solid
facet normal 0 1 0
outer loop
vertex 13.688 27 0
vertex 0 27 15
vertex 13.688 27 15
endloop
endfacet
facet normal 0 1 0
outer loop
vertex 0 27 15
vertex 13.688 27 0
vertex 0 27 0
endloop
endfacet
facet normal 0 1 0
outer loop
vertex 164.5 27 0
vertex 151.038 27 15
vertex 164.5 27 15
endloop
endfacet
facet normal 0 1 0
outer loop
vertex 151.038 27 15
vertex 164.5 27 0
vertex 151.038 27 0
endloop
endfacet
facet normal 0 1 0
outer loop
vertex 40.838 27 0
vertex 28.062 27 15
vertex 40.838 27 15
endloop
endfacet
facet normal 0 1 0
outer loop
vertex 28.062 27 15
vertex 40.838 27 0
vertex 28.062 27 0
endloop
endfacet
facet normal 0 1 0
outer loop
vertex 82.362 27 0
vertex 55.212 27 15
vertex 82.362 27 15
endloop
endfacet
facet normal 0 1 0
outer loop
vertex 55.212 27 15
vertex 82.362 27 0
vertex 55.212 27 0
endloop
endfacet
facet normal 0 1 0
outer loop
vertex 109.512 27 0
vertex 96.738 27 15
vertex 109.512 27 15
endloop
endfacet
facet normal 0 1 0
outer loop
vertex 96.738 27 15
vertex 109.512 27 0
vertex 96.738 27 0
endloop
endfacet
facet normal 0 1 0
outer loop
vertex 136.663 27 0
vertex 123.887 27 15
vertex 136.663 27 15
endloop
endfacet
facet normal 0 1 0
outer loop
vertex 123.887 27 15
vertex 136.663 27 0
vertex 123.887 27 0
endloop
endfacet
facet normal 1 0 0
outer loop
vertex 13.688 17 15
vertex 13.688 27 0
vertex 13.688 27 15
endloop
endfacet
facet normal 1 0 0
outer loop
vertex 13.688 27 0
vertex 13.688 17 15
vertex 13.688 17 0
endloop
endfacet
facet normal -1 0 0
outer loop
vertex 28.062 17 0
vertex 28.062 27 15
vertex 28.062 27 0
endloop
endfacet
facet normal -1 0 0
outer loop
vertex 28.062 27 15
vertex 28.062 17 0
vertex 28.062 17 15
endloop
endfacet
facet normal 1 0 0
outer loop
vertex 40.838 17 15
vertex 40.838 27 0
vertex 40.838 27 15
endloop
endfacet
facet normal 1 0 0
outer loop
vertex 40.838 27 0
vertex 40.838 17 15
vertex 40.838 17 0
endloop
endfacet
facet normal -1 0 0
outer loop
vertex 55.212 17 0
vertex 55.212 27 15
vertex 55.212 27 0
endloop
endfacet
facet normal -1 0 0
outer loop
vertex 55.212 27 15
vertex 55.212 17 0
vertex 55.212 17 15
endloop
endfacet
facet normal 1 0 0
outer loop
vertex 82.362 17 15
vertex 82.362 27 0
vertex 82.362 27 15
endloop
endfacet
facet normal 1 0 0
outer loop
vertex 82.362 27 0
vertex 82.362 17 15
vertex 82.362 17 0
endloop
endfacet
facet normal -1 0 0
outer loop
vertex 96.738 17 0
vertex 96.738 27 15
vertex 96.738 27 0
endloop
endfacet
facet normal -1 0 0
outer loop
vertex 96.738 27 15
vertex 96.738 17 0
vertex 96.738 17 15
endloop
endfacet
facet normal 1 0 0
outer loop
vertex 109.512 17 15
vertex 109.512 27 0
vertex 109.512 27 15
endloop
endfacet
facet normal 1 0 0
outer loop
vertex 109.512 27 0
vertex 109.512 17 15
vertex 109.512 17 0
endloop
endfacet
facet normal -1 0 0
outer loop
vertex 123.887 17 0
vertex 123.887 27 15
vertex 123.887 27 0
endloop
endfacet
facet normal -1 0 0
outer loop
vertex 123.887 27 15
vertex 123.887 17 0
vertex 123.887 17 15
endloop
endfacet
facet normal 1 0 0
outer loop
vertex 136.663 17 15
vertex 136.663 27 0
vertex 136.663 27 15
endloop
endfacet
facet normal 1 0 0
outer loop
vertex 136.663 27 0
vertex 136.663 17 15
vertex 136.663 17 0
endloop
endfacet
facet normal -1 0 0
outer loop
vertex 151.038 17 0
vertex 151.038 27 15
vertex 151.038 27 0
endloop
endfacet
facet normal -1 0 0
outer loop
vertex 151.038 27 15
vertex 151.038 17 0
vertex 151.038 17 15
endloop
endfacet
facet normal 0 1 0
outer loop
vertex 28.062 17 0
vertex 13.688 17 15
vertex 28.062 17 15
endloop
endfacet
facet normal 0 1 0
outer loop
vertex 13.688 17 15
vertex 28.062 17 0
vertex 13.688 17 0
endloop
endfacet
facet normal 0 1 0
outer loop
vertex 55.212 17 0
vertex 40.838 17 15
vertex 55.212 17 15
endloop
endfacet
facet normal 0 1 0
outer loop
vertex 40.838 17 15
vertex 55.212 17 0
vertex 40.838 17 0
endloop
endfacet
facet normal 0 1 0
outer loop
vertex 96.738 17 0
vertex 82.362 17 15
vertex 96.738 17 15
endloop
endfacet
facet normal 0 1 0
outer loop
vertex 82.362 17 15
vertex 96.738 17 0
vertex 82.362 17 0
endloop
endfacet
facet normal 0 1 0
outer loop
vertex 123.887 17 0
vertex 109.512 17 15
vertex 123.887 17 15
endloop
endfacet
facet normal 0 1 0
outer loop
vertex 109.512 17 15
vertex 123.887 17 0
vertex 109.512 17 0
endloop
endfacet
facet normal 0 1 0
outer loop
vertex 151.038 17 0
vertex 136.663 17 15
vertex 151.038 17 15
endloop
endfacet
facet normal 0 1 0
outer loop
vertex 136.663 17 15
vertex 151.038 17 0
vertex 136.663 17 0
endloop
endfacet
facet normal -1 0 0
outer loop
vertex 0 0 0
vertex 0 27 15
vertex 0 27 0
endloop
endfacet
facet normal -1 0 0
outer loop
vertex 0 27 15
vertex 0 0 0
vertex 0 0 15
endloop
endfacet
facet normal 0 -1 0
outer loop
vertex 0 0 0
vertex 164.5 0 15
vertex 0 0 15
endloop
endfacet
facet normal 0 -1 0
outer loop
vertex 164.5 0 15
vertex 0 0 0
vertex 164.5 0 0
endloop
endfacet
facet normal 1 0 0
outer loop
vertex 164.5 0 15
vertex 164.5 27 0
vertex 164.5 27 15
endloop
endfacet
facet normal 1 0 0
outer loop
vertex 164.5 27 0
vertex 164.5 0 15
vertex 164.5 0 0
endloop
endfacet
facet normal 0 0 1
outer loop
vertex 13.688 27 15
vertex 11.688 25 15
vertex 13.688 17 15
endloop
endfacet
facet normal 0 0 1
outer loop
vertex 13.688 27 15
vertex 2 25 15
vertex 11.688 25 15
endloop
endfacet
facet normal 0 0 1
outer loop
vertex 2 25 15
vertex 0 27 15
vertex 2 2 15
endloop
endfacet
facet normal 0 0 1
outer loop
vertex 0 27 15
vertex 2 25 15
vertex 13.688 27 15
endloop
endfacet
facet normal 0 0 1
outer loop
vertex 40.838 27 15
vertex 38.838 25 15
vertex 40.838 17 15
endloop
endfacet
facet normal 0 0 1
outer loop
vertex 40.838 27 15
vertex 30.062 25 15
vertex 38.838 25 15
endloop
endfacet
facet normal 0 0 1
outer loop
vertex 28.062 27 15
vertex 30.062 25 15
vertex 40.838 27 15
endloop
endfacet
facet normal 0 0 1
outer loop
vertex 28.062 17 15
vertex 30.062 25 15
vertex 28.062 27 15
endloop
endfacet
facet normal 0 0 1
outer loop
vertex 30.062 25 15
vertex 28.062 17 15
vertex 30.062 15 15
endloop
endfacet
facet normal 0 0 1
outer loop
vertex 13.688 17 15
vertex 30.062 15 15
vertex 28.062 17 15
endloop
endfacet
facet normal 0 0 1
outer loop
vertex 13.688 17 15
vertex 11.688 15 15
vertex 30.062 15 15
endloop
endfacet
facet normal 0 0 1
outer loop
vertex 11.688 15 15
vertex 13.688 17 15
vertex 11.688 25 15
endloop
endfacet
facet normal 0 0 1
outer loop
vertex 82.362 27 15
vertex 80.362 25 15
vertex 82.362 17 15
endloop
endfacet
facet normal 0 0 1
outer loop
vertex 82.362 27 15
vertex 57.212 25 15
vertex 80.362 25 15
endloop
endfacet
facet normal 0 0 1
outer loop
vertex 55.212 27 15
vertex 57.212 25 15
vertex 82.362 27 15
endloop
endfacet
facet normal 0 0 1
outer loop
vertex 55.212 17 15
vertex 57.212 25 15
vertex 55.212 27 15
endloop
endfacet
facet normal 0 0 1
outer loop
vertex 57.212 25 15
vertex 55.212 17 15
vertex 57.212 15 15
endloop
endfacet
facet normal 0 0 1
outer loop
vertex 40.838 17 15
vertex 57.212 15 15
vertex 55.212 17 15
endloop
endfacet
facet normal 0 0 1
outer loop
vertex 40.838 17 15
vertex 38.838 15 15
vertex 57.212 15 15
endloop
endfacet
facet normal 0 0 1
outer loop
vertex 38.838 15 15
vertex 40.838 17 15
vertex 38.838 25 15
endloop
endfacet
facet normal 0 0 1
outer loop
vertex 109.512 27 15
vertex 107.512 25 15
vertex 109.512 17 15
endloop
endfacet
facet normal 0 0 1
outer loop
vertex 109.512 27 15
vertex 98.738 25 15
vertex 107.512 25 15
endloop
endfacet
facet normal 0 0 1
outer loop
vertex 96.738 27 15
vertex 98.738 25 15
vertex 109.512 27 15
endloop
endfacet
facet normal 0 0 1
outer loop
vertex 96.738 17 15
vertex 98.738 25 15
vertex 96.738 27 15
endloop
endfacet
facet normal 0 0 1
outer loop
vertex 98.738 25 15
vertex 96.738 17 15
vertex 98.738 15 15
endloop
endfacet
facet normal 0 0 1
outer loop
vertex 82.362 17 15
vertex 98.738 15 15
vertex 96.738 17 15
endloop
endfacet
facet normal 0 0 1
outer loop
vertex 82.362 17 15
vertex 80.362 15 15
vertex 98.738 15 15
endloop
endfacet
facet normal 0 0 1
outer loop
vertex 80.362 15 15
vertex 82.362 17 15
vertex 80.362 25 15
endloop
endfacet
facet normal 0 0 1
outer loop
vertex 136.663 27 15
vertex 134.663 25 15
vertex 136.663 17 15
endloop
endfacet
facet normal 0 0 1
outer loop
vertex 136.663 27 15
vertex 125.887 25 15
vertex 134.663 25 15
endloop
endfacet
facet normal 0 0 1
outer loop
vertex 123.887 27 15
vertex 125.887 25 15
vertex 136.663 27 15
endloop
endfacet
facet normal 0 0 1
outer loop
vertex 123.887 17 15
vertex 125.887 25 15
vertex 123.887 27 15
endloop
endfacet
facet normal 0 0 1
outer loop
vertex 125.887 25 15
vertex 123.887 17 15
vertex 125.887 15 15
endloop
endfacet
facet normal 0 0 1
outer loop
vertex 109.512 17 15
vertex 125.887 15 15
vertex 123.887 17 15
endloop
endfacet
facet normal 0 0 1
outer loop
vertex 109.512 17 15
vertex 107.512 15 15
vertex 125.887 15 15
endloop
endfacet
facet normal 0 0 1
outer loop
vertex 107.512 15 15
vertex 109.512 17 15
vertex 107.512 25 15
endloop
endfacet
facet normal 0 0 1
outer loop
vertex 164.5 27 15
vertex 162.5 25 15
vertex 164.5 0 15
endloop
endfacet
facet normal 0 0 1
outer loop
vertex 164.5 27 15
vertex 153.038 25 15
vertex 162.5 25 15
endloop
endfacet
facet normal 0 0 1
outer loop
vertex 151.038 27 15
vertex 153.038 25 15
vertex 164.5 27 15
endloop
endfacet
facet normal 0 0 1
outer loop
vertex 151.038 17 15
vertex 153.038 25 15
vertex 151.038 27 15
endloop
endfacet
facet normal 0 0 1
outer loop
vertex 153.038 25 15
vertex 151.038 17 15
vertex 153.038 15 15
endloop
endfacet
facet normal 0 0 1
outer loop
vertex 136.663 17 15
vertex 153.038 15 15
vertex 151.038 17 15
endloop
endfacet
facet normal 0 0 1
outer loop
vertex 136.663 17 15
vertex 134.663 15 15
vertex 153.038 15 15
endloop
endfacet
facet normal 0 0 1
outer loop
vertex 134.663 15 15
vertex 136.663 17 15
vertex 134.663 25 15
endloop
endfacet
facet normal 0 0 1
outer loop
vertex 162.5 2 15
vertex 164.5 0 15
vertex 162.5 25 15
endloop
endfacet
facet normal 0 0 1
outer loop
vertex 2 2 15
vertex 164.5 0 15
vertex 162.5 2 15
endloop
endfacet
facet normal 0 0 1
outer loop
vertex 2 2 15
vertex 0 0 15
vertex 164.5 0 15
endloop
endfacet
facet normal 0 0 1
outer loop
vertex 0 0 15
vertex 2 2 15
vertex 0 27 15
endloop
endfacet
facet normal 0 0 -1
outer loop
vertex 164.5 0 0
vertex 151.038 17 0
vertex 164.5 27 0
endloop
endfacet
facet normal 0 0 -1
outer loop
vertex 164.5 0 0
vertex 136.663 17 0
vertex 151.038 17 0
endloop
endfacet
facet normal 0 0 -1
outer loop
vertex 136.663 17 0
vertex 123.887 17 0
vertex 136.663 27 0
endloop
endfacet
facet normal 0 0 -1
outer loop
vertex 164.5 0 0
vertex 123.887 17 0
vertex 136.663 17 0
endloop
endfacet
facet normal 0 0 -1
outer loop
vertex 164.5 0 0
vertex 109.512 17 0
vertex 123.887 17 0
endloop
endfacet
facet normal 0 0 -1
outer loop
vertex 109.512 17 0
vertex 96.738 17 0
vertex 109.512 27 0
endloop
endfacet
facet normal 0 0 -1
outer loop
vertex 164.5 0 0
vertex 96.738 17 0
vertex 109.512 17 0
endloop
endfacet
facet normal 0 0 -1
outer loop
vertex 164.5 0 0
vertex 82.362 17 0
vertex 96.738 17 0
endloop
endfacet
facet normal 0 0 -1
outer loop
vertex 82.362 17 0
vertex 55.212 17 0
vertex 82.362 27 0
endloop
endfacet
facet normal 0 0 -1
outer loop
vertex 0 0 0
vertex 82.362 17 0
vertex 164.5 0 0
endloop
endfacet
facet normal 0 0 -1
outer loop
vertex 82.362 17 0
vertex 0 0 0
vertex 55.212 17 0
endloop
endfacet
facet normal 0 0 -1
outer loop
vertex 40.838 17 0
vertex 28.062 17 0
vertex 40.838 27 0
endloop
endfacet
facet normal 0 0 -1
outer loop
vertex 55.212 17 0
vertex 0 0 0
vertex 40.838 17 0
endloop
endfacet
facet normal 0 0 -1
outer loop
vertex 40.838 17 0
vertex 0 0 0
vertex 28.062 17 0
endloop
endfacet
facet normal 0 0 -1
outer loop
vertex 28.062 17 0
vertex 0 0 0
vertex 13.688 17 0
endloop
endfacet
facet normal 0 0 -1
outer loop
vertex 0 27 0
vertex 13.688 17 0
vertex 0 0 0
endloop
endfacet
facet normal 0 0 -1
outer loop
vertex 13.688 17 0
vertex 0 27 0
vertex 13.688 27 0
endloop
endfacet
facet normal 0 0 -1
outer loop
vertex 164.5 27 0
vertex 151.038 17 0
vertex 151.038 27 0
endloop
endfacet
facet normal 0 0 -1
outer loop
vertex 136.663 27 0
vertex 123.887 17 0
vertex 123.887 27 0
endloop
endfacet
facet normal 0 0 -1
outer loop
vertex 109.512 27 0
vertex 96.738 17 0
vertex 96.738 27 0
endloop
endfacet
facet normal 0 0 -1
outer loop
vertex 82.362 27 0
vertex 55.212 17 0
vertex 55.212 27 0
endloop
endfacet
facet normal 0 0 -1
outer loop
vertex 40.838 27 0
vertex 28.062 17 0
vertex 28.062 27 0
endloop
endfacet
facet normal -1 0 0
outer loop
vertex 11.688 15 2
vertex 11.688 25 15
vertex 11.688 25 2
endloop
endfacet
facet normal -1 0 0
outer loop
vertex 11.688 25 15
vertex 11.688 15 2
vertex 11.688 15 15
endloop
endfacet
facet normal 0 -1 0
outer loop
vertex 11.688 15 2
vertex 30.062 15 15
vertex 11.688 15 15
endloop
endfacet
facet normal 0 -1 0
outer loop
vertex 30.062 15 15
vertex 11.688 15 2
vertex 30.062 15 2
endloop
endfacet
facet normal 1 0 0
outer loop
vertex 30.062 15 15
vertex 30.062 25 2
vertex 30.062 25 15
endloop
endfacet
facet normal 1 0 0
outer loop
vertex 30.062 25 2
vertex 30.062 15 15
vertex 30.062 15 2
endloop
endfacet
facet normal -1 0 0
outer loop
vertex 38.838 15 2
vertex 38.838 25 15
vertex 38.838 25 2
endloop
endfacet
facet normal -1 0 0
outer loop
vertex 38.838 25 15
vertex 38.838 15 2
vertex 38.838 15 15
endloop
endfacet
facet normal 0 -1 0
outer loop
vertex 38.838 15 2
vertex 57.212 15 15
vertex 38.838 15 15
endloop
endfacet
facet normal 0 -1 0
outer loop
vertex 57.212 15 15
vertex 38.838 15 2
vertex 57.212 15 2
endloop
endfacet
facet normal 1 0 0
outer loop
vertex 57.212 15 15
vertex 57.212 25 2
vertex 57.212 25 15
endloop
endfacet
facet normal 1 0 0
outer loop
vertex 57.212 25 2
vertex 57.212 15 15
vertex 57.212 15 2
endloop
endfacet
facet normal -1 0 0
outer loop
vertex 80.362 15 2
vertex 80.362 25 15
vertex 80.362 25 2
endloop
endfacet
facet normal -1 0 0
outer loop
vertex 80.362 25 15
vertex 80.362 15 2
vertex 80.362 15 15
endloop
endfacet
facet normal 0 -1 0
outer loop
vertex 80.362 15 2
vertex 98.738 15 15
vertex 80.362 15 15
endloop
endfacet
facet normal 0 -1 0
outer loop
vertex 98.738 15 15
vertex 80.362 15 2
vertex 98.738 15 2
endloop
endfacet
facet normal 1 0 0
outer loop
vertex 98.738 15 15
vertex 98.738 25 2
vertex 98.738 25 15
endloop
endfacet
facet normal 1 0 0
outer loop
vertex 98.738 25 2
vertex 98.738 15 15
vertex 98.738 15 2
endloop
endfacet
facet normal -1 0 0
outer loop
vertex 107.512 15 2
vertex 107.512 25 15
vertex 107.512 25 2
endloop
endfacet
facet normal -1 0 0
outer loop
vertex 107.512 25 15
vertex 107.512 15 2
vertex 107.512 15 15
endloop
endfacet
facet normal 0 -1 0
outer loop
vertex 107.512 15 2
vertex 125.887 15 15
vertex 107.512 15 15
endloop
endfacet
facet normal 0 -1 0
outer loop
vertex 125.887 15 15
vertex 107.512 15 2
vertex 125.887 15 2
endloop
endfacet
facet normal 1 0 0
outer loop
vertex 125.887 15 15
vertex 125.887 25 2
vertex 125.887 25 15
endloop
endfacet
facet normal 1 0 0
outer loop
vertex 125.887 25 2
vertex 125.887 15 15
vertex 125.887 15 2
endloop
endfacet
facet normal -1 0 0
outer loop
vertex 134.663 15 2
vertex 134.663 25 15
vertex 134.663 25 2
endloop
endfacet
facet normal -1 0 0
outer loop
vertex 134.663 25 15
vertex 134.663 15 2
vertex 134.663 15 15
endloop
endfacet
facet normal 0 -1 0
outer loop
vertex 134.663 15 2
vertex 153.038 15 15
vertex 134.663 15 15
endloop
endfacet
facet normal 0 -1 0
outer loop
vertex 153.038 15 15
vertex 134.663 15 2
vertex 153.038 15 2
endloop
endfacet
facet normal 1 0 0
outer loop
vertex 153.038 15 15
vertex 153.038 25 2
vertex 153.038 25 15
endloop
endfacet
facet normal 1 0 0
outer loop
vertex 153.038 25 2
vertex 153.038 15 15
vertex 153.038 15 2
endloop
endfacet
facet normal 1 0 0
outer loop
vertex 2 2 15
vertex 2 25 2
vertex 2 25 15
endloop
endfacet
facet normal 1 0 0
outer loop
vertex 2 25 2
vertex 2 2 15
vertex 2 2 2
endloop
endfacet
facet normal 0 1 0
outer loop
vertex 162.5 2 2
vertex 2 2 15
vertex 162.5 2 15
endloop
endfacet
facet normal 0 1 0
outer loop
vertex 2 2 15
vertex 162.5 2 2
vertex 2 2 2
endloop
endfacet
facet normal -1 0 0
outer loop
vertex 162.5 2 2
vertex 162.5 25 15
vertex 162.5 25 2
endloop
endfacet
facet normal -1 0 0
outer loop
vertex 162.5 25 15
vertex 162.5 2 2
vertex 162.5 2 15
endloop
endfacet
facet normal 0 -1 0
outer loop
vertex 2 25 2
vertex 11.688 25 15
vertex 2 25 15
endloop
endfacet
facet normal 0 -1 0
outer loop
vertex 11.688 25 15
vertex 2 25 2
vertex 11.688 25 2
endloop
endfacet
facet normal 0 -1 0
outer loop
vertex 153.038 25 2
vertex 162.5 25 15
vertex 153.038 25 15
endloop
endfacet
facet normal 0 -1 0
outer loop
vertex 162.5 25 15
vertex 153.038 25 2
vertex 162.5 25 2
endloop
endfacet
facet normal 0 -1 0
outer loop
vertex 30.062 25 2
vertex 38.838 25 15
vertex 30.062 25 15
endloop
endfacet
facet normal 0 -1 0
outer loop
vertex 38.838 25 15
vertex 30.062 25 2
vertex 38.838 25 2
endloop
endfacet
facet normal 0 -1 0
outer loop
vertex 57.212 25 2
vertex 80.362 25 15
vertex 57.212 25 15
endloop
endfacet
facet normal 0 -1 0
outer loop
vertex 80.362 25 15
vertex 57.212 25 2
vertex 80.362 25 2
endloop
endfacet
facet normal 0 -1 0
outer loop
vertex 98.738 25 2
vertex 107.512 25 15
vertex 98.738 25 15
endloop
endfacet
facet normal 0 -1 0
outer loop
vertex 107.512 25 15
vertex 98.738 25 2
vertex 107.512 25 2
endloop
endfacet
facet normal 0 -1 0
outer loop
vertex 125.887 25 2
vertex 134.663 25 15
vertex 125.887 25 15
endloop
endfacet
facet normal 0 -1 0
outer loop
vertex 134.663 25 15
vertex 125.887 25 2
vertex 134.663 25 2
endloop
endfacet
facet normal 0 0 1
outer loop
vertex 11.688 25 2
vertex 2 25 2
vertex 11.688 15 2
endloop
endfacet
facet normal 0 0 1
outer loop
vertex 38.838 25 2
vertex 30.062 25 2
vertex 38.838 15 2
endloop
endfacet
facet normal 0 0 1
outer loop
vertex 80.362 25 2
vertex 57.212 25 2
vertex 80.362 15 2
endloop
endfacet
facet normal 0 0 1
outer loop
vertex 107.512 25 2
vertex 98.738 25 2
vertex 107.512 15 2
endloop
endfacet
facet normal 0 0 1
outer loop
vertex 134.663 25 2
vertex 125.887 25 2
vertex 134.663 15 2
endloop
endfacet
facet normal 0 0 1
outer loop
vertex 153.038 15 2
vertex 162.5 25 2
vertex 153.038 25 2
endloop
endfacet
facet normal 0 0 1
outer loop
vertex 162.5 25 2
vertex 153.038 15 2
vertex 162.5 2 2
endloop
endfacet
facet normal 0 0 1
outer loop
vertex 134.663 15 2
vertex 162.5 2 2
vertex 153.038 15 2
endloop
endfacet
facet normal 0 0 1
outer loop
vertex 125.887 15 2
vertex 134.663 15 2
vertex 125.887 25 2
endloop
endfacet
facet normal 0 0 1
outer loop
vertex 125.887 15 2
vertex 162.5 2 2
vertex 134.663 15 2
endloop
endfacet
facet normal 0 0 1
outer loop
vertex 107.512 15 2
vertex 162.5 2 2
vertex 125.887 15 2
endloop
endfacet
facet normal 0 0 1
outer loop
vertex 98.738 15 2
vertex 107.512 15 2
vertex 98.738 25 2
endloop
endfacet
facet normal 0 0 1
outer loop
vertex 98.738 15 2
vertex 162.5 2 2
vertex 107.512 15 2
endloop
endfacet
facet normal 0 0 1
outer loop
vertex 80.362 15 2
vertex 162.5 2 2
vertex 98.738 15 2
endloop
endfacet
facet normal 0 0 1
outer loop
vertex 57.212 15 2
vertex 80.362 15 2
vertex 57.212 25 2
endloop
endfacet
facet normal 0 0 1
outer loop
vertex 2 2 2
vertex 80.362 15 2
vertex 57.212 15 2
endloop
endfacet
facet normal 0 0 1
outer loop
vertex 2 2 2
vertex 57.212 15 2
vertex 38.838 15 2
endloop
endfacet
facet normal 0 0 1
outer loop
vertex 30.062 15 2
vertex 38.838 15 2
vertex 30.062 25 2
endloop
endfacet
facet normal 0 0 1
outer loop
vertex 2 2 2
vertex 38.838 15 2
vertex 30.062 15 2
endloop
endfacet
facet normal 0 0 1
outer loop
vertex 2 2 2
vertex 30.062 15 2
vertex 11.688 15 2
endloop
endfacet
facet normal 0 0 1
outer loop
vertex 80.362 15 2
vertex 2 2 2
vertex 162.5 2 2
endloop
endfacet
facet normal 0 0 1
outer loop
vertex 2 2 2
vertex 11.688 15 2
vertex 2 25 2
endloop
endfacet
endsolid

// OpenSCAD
// file: Piano.scad
/* Piano Keyboard
 *
 * Author: Thiago Rosa (http://www.thiagorosa.com)
 * Project: KeyTita (https://github.com/thiagolr/keytita)
 * License: CC BY-SA 4.0 (https://creativecommons.org/licenses/by-sa/4.0)
 * 
 * Design: http://datagenetics.com/blog/may32016/index.html
 * 525|490|490|490|525|455|490|490|490|490|490|455
 *
 */

$WHITE_LENGTH = 135;
$WHITE_WIDTH = 22;
$WHITE_HEIGHT = 10;
$BLACK_LENGTH = 85;
$BLACK_HEIGHT = 15;
$SPACE_WIDTH = 1;
$THICKNESS = 0;
$OCTAVES = 1;
$INCLUDE_A0_B0 = false;
$INCLUDE_END_C = false;

$INCLUDE_SOLID_SPACE = false;
$KEY_COLOR_ALPHA = 1.0;

//Piano();
//Piano61();
//Piano88();
   
module Piano(whiteLength = $WHITE_LENGTH, whiteWidth = $WHITE_WIDTH, whiteHeight = $WHITE_HEIGHT, blackLength = $BLACK_LENGTH, blackHeight = $BLACK_HEIGHT, spaceWidth = $SPACE_WIDTH, thickness = $THICKNESS, octaves = $OCTAVES, includeA0B0 = $INCLUDE_A0_B0, includeEndC = $INCLUDE_END_C, includeSolidSpace = $INCLUDE_SOLID_SPACE) {
   
    baseWhiteWidth = 840;   
    baseSizeA = 525;
    baseSizeB = 490;
    baseSizeC = 455;
    baseFactor = whiteWidth / baseWhiteWidth;
    
    sizeA = baseSizeA * baseFactor;
    sizeB = baseSizeB * baseFactor;
    sizeC = baseSizeC * baseFactor;
    sizeBSpaced = sizeB + spaceWidth;
    
    holeSizeOffset = 0;
    holeSizeX = sizeBSpaced;
    holeSizeY = blackLength + spaceWidth * 2;
    holeSizeZ = blackHeight + holeSizeOffset;     
    
    a0b0Width = includeA0B0 ? (2 * whiteWidth) + (2 * spaceWidth) : 0;
    octaveWidth = (7 * whiteWidth) + (7 * spaceWidth);
    blackWidth = sizeBSpaced - spaceWidth * 2;

    blackPositions = [
        sizeA * 1,
        sizeA * 1 + sizeB * 1 + sizeBSpaced * 1,
        sizeA * 2 + sizeB * 1 + sizeBSpaced * 2 + sizeC * 1 + spaceWidth,
        sizeA * 2 + sizeB * 2 + sizeBSpaced * 3 + sizeC * 1 + spaceWidth,
        sizeA * 2 + sizeB * 3 + sizeBSpaced * 4 + sizeC * 1 + spaceWidth
    ];
    
    difference() {
        union() {
            for (i = [0 : octaves - 1]) {
                for (j = [0 : 6]) {
                    posX = a0b0Width + i * octaveWidth + j * (whiteWidth + spaceWidth);
                    Key("white", posX, 0, 0, whiteWidth, whiteLength, whiteHeight);
                    if (includeSolidSpace) {
                        Key("blue", posX + whiteWidth, 0, 0, spaceWidth, whiteLength, whiteHeight); 
                    }
                }            
            }      
        }
     
        for (i = [0 : octaves - 1]) {
            for (j = [0 : 4]) {
                posX = a0b0Width + i * octaveWidth + blackPositions[j];         
                posY = whiteLength - blackLength - spaceWidth;
                posZ = -holeSizeOffset / 2;
                Key("white", posX, posY, posZ, holeSizeX, holeSizeY, holeSizeZ);
            }
        }
    }
    
    for (i = [0 : octaves - 1]) {
        for (j = [0 : 4]) {
            posX = a0b0Width + i * octaveWidth + blackPositions[j] + (sizeBSpaced - blackWidth) / 2;
            posY = whiteLength - blackLength;
            posZ = 0;             
            Key("black", posX, posY, posZ, blackWidth, blackLength, blackHeight);
            if (includeSolidSpace || thickness > 0) {
                posX = a0b0Width + i * octaveWidth + blackPositions[j];
                posY = whiteLength - blackLength - spaceWidth;
                posZ = -holeSizeOffset / 2;                
                if (includeSolidSpace) {
                    Key("blue", posX, posY, posZ, holeSizeX, holeSizeY, holeSizeZ);
                }                
                if (thickness > 0) {           
                    Key("red", posX - thickness, posY - thickness, posZ, holeSizeX + thickness * 2, holeSizeY + thickness, holeSizeZ + thickness); 
                }
            }
        }    
    }
    
    if (includeA0B0) {
        blackPosition = whiteWidth * 2 - sizeC - sizeBSpaced;
        
        difference() {
            union() {
                for (j = [0 : 1]) {
                    posX = j * (whiteWidth + spaceWidth);                    
                    Key("white", posX, 0, 0, whiteWidth, whiteLength, whiteHeight);
                    if (includeSolidSpace) {
                        Key("blue", posX + whiteWidth, 0, 0, spaceWidth, whiteLength, whiteHeight); 
                    }
                }            
            } 
         
            posX = blackPosition;         
            posY = whiteLength - blackLength - spaceWidth;
            posZ = -holeSizeOffset / 2;
            Key("white", posX, posY, posZ, holeSizeX, holeSizeY, holeSizeZ);              
        }   
      
        posX = blackPosition + (sizeBSpaced - blackWidth) / 2;
        posY = whiteLength - blackLength;
        posZ = 0;
        Key("black", posX, posY, posZ, blackWidth, blackLength, blackHeight);

        if (includeSolidSpace || thickness > 0) {
            posX = blackPosition;         
            posY = whiteLength - blackLength - spaceWidth;
            posZ = -holeSizeOffset / 2;            
            if (includeSolidSpace) {
                Key("blue", posX, posY, posZ, holeSizeX, holeSizeY, holeSizeZ);
            }            
            if (thickness > 0) {           
                Key("red", posX - thickness, posY - thickness, posZ, holeSizeX + thickness * 2, holeSizeY + thickness, holeSizeZ + thickness); 
            }
        }
    }
    
    if (includeEndC) {
        posX = a0b0Width + octaves * octaveWidth; 
        Key("white", posX, 0, 0, whiteWidth, whiteLength, whiteHeight);        
        if (includeSolidSpace) {
            Key("blue", posX + whiteWidth, 0, 0, spaceWidth, whiteLength, whiteHeight); 
        }
    }
}

module Key(colorKey, posX, posY, posZ, sizeX, sizeY, sizeZ) {
    translate([posX, posY, posZ])          
        color(colorKey, $KEY_COLOR_ALPHA)
            cube([sizeX, sizeY, sizeZ]);
}

module Piano61(whiteLength = $WHITE_LENGTH, whiteWidth = $WHITE_WIDTH, whiteHeight = $WHITE_HEIGHT, blackLength = $BLACK_LENGTH, blackHeight = $BLACK_HEIGHT, spaceWidth = $SPACE_WIDTH) {  
    
    Piano(whiteLength, whiteWidth, whiteHeight, blackLength, blackHeight, spaceWidth, octaves = 5, includeA0B0 = false, includeEndC = true);
    
}

module Piano88(whiteLength = $WHITE_LENGTH, whiteWidth = $WHITE_WIDTH, whiteHeight = $WHITE_HEIGHT, blackLength = $BLACK_LENGTH, blackHeight = $BLACK_HEIGHT, spaceWidth = $SPACE_WIDTH) {
    
    Piano(whiteLength, whiteWidth, whiteHeight, blackLength, blackHeight, spaceWidth, octaves = 7, includeA0B0 = true, includeEndC = true);
    
}
// main file
include <Piano.scad>;

$LED_STRIP_HEIGHT = 13;
$THICKNESS = 2; // arrumar aqui

$WHITE_LENGTH = 125;
$WHITE_WIDTH = 21.9;
$WHITE_HEIGHT = 10;
$BLACK_LENGTH = 75;
$BLACK_HEIGHT = $WHITE_HEIGHT + 10;
$SPACE_WIDTH = 1.6;
$OCTAVES = 1;
$INCLUDE_A0_B0 = false;
$INCLUDE_END_C = false;

$COLOR_ALPHA = 1;

mainWidth = $WHITE_WIDTH * 7 + $SPACE_WIDTH * 7;
mainHeight = $BLACK_HEIGHT - $WHITE_HEIGHT + $LED_STRIP_HEIGHT + $THICKNESS * 2;
mainDepth = 15;
mainThickness = $THICKNESS;
mainColor = "white";

rotate([90, 0, 0]) translate([0, 0, -mainHeight])
difference(){
    MainUnit(color = mainColor);   
    MainUnit(color = mainColor, thickness = mainThickness);    
} 

module MainUnit(color = "black", thickness = 0) {
    difference(){
        translate([thickness, thickness, thickness]) 
            color(color, $COLOR_ALPHA) 
                cube([mainWidth - thickness * 2, mainDepth + thickness, mainHeight - thickness * 2]);
        
        translate([0, mainDepth - $WHITE_LENGTH + 10, -$WHITE_HEIGHT ]) 
            color(color, $COLOR_ALPHA) 
                Piano(thickness = thickness, includeSolidSpace = true);  
    }
}
